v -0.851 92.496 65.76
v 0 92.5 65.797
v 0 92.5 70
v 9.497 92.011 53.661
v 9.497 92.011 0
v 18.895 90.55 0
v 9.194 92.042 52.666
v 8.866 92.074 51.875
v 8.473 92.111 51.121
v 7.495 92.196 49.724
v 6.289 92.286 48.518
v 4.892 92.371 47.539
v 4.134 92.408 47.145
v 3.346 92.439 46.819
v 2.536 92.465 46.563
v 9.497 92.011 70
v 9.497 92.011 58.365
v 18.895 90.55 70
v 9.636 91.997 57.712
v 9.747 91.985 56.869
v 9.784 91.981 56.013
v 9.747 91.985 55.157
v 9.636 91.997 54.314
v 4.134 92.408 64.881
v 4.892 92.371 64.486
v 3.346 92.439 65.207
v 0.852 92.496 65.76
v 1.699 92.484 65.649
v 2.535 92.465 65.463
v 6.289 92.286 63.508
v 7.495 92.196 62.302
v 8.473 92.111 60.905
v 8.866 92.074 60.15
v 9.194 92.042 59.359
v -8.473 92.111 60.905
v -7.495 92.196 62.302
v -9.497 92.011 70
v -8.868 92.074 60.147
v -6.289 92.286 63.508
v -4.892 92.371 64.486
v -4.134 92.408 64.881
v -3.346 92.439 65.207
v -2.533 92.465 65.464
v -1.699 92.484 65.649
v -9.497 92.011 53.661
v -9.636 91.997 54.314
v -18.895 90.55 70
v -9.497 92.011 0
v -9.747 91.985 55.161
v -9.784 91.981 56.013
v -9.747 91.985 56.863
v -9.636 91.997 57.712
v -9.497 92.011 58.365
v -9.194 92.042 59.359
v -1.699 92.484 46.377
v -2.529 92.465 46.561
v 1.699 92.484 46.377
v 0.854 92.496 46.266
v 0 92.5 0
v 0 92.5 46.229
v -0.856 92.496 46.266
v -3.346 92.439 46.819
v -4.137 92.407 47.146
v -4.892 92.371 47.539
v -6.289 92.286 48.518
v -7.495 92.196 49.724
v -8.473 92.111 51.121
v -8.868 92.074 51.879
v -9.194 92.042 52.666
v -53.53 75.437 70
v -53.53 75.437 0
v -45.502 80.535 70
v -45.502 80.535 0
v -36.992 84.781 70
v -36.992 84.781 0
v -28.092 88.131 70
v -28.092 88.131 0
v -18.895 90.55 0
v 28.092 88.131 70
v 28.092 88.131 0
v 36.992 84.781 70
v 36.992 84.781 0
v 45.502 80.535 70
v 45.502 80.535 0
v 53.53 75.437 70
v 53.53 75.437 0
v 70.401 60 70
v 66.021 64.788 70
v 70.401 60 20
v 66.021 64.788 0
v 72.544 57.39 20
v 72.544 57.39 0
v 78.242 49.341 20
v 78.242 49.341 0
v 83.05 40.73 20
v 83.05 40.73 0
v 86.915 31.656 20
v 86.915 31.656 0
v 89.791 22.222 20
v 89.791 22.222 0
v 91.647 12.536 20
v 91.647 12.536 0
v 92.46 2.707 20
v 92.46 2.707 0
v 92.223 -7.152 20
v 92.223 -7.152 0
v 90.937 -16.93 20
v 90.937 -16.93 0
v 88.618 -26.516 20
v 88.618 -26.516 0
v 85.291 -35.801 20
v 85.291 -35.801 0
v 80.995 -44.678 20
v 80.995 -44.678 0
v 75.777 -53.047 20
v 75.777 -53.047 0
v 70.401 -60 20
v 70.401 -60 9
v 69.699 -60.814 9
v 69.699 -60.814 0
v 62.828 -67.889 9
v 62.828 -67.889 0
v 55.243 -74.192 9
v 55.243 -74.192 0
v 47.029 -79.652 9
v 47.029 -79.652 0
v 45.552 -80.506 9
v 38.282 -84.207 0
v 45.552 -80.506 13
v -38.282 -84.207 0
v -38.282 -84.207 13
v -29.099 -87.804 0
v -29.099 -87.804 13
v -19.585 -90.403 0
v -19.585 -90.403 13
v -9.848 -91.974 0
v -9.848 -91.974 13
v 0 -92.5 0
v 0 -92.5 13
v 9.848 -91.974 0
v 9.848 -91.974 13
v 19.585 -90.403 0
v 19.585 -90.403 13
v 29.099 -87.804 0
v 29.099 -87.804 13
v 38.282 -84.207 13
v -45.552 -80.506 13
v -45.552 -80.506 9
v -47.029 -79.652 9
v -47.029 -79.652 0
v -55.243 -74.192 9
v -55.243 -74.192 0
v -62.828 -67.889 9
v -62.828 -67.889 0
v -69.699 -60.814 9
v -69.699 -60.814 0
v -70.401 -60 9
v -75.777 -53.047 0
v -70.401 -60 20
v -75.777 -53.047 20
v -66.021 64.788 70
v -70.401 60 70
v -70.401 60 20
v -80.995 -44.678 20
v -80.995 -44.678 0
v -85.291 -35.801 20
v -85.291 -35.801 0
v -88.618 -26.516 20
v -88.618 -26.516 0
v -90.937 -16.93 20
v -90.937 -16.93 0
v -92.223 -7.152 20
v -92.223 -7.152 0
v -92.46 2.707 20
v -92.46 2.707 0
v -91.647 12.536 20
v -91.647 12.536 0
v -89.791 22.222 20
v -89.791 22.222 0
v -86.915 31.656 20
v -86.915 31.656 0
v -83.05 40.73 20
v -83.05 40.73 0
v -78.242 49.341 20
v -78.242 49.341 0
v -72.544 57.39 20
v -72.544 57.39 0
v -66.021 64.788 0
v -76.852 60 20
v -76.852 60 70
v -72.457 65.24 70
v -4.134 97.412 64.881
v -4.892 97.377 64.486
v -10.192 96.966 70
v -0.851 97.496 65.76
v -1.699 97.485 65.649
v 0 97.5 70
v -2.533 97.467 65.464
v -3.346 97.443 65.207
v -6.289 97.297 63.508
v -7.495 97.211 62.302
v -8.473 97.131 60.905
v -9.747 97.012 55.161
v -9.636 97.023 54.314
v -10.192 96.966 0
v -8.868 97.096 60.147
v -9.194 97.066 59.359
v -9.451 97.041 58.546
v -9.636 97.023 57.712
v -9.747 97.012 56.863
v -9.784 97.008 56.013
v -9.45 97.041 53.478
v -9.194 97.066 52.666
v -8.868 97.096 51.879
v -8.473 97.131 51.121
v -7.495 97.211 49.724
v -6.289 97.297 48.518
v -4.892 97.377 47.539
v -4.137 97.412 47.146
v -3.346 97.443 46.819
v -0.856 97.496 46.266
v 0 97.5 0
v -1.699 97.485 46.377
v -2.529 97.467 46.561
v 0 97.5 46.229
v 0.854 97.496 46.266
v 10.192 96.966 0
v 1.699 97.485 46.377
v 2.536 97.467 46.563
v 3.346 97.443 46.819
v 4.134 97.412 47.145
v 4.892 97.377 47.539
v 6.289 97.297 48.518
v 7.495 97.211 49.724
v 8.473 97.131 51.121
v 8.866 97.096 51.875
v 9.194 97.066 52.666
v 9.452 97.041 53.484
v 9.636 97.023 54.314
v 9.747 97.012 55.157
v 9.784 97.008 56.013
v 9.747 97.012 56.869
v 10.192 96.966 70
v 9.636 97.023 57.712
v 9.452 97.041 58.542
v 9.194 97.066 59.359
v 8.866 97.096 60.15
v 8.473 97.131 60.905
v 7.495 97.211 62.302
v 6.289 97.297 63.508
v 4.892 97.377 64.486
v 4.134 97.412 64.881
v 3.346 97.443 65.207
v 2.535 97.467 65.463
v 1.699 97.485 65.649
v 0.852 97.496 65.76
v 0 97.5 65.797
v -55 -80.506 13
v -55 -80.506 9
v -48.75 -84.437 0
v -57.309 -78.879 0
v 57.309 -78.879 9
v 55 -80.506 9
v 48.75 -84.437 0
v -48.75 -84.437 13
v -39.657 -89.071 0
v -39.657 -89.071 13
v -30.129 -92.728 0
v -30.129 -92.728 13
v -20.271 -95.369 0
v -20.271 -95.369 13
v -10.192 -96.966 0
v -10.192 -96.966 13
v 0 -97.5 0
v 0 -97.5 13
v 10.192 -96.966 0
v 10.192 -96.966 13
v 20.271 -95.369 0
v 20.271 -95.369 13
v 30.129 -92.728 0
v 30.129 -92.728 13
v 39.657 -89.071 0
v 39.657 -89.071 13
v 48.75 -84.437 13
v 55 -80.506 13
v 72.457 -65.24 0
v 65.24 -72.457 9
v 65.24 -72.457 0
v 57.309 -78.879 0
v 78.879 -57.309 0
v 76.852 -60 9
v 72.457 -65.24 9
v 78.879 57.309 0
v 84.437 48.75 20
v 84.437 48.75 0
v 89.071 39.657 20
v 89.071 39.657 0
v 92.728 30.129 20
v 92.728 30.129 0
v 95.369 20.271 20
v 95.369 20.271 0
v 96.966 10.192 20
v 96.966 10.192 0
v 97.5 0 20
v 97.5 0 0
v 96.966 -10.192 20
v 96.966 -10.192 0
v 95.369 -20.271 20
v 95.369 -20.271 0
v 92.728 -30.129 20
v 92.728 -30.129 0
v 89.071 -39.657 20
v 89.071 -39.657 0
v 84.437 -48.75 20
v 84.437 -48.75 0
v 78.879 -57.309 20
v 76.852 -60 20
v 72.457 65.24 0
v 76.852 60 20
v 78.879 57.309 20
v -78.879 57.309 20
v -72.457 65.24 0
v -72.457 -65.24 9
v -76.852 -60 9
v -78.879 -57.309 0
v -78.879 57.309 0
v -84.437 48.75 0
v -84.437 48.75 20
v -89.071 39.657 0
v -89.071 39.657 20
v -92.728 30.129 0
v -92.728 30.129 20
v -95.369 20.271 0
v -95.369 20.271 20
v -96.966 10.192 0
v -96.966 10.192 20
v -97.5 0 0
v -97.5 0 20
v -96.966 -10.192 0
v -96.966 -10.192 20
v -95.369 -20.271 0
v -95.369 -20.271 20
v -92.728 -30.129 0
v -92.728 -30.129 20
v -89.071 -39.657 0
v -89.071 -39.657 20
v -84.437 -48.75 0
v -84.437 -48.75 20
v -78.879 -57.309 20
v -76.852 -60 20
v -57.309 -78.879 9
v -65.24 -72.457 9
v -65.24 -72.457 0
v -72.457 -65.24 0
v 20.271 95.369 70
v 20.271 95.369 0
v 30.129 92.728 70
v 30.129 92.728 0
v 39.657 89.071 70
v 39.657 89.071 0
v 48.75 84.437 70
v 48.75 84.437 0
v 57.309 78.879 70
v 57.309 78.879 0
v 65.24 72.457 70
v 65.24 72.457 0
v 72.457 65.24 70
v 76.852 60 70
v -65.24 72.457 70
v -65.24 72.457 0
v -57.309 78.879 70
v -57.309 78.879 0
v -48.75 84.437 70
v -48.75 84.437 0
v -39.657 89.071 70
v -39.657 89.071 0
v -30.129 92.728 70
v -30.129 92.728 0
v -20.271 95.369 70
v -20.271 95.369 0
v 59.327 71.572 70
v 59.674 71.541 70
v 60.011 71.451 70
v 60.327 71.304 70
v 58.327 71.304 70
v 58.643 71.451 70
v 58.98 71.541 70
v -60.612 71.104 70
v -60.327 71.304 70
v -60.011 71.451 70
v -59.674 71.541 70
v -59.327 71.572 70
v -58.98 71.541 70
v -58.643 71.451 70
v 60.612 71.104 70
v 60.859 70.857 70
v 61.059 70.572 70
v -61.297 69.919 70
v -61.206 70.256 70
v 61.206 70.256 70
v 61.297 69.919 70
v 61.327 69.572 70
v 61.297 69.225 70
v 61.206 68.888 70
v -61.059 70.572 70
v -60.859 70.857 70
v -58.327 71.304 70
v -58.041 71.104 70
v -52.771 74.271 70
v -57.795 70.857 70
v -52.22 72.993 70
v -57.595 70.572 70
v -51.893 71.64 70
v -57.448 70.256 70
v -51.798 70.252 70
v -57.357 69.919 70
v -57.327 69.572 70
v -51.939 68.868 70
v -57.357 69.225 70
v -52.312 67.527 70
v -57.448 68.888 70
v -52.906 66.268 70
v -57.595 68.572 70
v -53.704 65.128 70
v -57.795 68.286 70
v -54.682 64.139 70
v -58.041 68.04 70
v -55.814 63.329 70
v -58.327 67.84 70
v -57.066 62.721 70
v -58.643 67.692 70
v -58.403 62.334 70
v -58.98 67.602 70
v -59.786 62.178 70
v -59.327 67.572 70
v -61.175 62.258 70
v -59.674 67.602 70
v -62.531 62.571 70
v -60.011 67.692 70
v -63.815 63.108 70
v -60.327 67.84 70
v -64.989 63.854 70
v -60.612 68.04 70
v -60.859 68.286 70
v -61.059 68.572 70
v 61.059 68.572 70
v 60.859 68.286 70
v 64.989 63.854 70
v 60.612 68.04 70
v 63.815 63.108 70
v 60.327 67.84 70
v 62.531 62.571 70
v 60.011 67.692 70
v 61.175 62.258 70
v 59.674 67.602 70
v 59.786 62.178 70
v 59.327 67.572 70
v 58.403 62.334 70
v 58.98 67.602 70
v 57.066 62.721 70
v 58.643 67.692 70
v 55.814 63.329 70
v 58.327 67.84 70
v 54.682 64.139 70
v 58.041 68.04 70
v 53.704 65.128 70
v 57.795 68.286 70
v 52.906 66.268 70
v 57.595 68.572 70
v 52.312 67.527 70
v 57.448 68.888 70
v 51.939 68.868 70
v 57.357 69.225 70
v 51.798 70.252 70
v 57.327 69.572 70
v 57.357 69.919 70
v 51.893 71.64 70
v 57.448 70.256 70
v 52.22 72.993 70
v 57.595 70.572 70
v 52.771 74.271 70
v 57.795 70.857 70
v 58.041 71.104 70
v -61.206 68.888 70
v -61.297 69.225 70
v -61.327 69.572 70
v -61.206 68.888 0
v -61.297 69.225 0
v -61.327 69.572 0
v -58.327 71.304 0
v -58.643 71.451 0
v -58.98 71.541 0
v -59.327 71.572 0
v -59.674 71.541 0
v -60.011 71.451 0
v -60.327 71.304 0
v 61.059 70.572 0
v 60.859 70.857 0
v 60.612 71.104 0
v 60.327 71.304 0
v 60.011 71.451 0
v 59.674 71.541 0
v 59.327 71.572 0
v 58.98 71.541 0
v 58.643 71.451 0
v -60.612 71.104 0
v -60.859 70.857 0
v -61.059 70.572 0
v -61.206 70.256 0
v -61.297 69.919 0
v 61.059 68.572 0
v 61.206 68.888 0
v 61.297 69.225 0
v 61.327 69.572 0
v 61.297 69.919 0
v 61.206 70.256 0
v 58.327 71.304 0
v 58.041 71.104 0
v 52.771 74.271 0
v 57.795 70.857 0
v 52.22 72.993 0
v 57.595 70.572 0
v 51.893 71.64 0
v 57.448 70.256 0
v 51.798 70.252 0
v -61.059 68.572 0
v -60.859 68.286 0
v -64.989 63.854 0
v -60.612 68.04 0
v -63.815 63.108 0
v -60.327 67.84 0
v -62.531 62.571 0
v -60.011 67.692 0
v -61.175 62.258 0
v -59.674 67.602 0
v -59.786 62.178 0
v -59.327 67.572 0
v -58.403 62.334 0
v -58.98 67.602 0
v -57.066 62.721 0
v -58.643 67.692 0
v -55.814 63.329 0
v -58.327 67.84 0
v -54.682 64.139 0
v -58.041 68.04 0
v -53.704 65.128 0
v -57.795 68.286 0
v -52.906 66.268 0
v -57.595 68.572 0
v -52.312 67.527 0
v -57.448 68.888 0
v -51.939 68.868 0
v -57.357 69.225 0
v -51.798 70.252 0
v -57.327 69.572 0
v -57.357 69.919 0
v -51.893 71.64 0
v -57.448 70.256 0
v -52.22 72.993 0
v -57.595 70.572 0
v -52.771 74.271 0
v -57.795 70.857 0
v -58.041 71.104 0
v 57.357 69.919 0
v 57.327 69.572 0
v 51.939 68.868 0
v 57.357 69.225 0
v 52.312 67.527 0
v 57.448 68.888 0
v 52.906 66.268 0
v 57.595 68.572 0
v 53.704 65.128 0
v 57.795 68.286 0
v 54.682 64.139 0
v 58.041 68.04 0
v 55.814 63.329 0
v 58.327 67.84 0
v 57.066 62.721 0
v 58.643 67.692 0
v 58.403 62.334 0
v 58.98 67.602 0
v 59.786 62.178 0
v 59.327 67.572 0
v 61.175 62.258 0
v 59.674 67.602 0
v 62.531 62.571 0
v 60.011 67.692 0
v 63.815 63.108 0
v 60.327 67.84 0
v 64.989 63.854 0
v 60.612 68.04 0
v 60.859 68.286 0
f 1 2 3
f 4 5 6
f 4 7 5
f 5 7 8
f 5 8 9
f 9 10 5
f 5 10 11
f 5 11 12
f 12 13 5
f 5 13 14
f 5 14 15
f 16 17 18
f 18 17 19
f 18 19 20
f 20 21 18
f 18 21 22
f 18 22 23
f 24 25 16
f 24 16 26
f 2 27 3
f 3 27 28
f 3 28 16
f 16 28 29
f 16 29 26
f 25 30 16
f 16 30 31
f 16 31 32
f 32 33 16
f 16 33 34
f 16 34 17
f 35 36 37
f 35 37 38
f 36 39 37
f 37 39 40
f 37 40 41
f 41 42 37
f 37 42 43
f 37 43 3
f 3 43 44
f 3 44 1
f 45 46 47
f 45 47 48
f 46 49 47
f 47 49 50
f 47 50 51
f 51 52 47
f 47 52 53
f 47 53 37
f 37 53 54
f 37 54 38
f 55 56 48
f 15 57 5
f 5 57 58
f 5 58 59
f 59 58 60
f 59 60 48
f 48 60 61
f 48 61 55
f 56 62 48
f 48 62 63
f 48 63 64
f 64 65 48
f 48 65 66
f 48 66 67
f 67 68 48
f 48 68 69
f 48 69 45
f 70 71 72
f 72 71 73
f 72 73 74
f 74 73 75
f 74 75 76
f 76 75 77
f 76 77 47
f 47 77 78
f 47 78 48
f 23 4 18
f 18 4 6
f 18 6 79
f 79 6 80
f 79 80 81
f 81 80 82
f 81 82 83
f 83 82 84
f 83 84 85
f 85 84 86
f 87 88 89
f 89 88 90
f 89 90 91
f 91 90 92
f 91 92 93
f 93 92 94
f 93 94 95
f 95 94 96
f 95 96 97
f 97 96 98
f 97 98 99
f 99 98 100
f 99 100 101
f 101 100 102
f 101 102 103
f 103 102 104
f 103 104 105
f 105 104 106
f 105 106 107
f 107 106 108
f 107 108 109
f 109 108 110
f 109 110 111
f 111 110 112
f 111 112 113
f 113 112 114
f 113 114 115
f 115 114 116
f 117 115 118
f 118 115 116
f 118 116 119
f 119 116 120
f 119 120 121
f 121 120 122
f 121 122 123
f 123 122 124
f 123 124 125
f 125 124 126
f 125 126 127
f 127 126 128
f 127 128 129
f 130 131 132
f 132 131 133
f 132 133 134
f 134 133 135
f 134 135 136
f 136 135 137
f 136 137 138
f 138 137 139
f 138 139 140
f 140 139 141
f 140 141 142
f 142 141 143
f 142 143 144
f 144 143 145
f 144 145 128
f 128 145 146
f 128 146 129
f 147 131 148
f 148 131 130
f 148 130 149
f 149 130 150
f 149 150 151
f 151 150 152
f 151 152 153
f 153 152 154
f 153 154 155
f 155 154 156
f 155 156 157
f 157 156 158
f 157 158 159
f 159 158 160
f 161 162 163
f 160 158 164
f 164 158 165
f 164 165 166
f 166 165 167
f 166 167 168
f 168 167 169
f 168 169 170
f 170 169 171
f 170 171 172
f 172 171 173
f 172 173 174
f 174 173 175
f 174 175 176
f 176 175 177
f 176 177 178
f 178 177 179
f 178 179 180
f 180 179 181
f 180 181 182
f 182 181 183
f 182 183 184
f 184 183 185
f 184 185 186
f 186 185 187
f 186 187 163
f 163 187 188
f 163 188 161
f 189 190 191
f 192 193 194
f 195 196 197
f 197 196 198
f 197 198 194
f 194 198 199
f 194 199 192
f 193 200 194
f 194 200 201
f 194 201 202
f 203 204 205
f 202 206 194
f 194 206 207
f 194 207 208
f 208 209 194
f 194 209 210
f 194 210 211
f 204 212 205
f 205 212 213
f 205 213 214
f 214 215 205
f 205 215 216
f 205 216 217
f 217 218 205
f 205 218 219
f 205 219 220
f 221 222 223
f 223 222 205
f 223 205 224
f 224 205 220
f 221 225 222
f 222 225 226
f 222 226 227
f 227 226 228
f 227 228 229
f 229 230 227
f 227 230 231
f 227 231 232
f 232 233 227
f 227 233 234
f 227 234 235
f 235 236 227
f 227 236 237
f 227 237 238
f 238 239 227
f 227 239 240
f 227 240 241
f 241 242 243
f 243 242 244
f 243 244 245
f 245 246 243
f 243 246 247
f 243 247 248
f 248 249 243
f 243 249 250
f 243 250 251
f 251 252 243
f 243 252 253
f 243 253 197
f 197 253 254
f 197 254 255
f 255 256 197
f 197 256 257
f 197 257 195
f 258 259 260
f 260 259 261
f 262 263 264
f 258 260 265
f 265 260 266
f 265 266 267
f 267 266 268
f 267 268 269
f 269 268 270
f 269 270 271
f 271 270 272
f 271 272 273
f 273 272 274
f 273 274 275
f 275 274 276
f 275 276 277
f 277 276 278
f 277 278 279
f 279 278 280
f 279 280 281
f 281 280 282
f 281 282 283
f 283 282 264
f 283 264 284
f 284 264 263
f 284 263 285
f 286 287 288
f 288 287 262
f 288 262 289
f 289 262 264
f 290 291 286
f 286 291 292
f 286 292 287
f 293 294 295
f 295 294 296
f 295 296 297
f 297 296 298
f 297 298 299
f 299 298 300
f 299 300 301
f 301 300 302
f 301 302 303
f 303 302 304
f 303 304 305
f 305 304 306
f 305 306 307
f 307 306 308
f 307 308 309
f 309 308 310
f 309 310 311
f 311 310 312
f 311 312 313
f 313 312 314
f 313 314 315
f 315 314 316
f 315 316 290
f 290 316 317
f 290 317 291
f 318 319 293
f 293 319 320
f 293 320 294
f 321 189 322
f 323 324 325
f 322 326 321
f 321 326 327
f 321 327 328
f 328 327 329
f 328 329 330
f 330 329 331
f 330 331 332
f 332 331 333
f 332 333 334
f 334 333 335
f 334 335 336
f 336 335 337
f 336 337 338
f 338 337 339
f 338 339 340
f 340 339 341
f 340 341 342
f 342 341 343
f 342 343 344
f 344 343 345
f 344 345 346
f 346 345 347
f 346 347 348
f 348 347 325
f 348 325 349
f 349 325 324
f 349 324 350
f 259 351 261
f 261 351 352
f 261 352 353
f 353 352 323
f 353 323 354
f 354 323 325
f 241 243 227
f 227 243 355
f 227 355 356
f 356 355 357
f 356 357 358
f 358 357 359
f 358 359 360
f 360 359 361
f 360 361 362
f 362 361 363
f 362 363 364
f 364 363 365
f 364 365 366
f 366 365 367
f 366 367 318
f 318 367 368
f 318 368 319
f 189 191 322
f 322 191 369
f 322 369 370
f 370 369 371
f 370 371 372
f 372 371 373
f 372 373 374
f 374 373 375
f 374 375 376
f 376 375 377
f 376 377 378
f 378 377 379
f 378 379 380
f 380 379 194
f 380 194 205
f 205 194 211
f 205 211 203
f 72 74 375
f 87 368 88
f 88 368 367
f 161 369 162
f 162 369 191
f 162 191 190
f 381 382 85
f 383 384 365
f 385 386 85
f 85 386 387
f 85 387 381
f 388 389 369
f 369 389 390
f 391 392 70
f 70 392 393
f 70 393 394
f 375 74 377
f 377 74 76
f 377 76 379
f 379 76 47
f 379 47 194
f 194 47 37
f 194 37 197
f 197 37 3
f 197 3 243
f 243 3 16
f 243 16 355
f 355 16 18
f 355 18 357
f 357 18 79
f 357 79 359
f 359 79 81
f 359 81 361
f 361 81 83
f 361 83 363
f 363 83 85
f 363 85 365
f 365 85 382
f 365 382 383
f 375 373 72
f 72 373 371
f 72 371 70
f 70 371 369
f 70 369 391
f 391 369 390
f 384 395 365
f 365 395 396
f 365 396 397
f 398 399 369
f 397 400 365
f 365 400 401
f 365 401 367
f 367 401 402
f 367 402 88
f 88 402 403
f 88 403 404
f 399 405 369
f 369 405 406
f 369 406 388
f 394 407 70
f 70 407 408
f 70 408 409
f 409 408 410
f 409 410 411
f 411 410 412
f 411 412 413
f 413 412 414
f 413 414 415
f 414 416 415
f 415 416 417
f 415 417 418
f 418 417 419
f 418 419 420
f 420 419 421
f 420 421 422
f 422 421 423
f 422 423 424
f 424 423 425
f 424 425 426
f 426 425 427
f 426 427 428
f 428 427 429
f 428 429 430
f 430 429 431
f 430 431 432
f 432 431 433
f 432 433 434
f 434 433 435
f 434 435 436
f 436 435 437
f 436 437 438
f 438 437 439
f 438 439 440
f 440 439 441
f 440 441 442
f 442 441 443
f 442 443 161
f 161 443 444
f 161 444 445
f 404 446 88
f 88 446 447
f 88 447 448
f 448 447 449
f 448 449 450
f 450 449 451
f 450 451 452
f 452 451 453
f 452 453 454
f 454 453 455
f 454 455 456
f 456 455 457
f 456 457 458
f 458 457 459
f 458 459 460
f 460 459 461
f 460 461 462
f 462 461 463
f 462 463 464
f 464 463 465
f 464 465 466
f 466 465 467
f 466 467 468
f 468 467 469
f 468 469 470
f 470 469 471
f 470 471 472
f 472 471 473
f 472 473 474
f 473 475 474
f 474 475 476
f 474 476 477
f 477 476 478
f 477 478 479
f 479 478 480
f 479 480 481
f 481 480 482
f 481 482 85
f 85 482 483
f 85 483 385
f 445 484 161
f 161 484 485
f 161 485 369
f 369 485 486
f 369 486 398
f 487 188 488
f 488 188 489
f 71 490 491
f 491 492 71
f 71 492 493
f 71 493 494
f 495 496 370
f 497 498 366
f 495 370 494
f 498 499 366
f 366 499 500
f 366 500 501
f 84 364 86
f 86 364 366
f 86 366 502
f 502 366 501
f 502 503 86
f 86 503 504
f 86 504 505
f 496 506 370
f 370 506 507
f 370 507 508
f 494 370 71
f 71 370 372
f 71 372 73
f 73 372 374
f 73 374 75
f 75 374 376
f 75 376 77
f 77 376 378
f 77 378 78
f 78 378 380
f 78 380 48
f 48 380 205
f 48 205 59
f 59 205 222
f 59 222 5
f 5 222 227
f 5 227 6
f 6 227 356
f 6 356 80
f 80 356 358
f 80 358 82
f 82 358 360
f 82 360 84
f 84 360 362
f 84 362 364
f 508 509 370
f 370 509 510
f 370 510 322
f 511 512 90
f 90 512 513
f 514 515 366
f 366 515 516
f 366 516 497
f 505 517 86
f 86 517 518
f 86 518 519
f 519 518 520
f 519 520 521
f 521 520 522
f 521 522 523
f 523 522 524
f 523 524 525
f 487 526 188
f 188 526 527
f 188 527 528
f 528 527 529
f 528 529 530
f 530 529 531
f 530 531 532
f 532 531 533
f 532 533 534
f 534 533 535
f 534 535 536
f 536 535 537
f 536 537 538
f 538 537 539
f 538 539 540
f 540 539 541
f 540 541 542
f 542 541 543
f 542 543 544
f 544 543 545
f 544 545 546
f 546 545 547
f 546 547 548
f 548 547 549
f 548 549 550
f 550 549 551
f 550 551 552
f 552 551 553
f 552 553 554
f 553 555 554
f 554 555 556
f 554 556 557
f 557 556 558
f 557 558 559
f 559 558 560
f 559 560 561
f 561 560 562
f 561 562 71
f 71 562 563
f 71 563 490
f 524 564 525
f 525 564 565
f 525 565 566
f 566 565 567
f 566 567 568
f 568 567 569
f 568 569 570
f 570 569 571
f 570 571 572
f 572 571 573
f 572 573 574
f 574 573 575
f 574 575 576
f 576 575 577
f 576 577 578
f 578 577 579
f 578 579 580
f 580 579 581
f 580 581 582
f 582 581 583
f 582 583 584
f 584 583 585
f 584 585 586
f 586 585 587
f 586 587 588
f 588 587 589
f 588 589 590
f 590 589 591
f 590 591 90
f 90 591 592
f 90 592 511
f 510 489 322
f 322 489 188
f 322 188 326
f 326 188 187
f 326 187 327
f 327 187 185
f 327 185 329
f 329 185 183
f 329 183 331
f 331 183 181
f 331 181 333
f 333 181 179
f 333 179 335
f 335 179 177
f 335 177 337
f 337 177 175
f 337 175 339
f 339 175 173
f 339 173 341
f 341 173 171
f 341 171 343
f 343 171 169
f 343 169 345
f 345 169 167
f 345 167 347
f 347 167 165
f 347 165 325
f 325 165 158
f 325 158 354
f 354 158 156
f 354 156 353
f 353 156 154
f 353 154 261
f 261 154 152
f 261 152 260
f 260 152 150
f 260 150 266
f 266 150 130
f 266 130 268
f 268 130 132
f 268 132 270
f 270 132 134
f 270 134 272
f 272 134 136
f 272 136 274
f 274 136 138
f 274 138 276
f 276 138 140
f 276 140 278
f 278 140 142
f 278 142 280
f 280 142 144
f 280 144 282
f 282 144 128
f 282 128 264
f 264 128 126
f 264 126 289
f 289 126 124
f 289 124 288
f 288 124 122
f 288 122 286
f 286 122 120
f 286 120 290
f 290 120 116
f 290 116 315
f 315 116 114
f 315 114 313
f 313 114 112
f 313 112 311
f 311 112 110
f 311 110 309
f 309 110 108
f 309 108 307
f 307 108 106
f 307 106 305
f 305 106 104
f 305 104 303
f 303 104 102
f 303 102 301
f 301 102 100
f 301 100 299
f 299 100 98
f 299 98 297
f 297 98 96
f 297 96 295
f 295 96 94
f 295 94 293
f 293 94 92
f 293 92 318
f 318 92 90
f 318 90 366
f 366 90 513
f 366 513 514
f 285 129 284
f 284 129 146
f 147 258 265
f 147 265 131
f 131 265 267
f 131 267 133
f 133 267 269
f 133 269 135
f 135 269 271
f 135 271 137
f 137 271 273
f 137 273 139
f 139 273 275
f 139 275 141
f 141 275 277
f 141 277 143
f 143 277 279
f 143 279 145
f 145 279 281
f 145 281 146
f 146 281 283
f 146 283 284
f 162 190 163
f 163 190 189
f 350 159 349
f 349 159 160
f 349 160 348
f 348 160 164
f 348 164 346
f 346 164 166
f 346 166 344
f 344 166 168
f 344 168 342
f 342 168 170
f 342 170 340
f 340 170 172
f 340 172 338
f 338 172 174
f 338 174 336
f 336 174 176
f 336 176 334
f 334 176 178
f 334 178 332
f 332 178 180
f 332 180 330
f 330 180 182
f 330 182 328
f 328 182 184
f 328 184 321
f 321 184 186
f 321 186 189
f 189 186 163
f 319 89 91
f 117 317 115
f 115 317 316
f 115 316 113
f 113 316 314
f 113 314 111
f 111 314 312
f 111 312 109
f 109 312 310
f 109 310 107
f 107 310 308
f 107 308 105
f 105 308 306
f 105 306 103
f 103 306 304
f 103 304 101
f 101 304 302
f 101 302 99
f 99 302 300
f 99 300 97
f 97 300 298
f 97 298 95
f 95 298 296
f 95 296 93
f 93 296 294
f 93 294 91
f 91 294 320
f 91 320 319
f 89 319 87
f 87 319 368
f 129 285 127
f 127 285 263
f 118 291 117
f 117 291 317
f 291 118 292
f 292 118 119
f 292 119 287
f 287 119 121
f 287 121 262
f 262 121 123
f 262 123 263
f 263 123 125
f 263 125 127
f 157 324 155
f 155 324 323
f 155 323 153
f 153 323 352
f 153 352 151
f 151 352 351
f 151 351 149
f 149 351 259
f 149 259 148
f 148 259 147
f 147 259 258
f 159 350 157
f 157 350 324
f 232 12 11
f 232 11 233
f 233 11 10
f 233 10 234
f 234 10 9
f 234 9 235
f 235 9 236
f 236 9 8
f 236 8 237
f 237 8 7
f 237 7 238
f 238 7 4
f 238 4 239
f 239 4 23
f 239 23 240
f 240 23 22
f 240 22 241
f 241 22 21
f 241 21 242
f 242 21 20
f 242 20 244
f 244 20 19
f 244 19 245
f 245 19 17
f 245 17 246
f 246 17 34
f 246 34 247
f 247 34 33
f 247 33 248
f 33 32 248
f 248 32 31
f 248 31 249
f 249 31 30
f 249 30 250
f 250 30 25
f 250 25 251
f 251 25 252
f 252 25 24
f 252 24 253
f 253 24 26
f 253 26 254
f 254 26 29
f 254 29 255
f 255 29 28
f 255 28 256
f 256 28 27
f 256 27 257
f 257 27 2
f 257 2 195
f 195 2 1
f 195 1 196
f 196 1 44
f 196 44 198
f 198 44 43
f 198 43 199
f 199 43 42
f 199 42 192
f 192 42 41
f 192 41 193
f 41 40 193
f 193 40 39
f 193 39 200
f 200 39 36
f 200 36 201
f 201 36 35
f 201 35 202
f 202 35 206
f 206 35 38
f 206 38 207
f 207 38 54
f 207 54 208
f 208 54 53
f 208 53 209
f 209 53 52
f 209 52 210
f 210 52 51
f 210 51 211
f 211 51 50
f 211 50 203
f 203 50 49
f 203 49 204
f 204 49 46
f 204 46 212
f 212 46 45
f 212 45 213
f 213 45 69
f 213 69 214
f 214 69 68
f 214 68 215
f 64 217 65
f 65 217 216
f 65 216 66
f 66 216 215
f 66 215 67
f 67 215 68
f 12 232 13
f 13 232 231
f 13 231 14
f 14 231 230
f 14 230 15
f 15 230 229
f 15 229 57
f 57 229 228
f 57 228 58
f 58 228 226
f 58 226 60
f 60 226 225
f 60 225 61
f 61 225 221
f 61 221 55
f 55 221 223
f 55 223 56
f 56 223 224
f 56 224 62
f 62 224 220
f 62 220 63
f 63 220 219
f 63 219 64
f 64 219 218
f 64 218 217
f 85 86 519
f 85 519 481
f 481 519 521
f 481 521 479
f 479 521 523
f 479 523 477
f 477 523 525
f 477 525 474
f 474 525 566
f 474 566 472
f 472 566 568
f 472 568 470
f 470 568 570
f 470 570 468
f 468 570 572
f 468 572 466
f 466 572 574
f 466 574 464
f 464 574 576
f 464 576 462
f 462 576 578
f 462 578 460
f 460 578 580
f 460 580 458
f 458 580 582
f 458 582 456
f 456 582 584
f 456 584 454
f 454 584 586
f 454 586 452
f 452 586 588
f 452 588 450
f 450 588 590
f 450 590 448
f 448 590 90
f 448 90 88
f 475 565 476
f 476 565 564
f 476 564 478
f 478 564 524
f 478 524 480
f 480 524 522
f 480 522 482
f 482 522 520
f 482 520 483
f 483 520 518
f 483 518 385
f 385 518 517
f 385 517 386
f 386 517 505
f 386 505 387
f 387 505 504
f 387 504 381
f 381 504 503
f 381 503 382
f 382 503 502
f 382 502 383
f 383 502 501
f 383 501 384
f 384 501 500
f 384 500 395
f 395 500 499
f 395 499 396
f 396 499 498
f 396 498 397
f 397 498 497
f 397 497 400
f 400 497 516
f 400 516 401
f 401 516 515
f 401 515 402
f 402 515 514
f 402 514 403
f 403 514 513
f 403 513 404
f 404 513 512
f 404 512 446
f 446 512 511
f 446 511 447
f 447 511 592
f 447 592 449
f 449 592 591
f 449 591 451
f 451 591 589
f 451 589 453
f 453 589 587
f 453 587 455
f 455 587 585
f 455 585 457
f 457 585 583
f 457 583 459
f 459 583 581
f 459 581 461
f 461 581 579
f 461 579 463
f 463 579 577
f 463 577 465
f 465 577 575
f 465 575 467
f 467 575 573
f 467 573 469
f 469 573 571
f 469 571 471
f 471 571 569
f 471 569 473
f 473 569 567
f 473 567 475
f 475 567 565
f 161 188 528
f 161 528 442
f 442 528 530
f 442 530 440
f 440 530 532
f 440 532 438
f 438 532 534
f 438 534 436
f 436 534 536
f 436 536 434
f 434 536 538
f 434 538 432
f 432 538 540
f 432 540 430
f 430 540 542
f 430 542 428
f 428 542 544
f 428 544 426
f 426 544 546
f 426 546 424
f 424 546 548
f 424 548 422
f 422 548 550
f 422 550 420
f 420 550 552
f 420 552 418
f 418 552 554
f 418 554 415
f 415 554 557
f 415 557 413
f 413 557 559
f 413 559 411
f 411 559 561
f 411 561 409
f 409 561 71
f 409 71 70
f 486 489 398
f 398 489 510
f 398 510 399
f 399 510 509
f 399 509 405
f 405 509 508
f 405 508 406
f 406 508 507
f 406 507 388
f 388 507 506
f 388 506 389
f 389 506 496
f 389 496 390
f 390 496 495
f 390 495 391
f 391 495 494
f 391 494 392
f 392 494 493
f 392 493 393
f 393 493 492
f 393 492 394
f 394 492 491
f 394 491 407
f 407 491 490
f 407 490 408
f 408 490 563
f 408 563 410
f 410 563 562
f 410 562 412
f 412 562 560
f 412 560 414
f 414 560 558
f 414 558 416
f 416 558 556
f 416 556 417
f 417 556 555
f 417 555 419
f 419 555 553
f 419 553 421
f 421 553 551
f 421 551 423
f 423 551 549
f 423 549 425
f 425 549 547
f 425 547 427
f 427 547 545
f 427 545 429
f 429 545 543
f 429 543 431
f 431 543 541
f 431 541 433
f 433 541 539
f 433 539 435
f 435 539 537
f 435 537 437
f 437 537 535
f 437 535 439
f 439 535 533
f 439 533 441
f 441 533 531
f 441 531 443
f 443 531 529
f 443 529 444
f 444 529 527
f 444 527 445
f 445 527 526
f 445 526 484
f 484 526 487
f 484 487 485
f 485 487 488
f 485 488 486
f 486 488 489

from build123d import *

# Parameters (mm, degrees)
SKETCH2_R               = 97.5
SKETCH2_R_2             = 92.5
BOSS_EXTRUDE1_DEPTH     = 70
SKETCH3_W               = 110
SKETCH3_H               = 114
CUT_EXTRUDE1_DEPTH      = 98.5
SKETCH4_W               = 100
SKETCH4_H               = 120
CUT_EXTRUDE2_DEPTH      = 98.5
CUT_EXTRUDE2_DEPTH_BACK = 98.5
SKETCH5_W               = 61
SKETCH5_H               = 20.506210941
CUT_EXTRUDE3_DEPTH      = 98.5
CUT_EXTRUDE3_DEPTH_BACK = 98.5
SKETCH6_R               = 9.784293737
CUT_EXTRUDE4_DEPTH      = 98.5
BOSS_EXTRUDE2_DEPTH     = 70
SKETCH9_R               = 2
CUT_EXTRUDE5_DEPTH      = 71.0000001


with BuildPart() as part:
    # Sketch2 → Boss-Extrude1 (new body)
    with BuildSketch(Plane.XY):
        Circle(SKETCH2_R)
        Circle(SKETCH2_R_2, mode=Mode.SUBTRACT)
    extrude(amount=BOSS_EXTRUDE1_DEPTH)

    # Sketch3 → Cut-Extrude1 (cut, through all)
    with BuildSketch(Plane(origin=(0, 0, 0), x_dir=(1, 0, 0), z_dir=(0, 1, 0))):
        with Locations((0, -70)):
            Rectangle(SKETCH3_W, SKETCH3_H)
    extrude(amount=-CUT_EXTRUDE1_DEPTH, mode=Mode.SUBTRACT)

    # Sketch4 → Cut-Extrude2 (cut, two sides)
    with BuildSketch(Plane(origin=(0, 0, 0), x_dir=(0, 0, -1), z_dir=(1, 0, 0))) as cut_extrude2_sk:
        with Locations((-70, 0)):
            Rectangle(SKETCH4_W, SKETCH4_H)
    extrude(amount=CUT_EXTRUDE2_DEPTH, mode=Mode.SUBTRACT)
    extrude(cut_extrude2_sk.sketch, amount=-CUT_EXTRUDE2_DEPTH_BACK, mode=Mode.SUBTRACT)

    # Sketch5 → Cut-Extrude3 (cut, two sides)
    with BuildSketch(Plane(origin=(0, 0, 0), x_dir=(0, 0, -1), z_dir=(1, 0, 0))) as cut_extrude3_sk:
        with Locations((-39.5, -70.253105471)):
            Rectangle(SKETCH5_W, SKETCH5_H)
    extrude(amount=CUT_EXTRUDE3_DEPTH, mode=Mode.SUBTRACT)
    extrude(cut_extrude3_sk.sketch, amount=-CUT_EXTRUDE3_DEPTH_BACK, mode=Mode.SUBTRACT)

    # Sketch6 → Cut-Extrude4 (cut, through all)
    with BuildSketch(Plane(origin=(0, 0, 0), x_dir=(1, 0, 0), z_dir=(0, 1, 0))):
        with Locations((0, -56.012862066)):
            Circle(SKETCH6_R)
    extrude(amount=CUT_EXTRUDE4_DEPTH, mode=Mode.SUBTRACT)

    # Sketch8 → Boss-Extrude2 (add)
    with BuildSketch(Plane.XY):
        with BuildLine():
            ThreePointArc((66.0209996, 64.787943414), (54.682390857, 64.138601978), (53.530180965, 75.437190602))
            ThreePointArc((53.530180965, 75.437190602), (60.012272162, 70.390178221), (66.0209996, 64.787943414))
        make_face()
    boss_extrude2 = extrude(amount=BOSS_EXTRUDE2_DEPTH)

    # Sketch9 → Cut-Extrude5 (cut, through all)
    with BuildSketch(Plane(origin=(0, 0, 0), x_dir=(-1, 0, 0), z_dir=(0, 0, -1))):
        with Locations((-59.32689754, 69.571871503)):
            Circle(SKETCH9_R)
    cut_extrude5 = extrude(amount=-CUT_EXTRUDE5_DEPTH, mode=Mode.SUBTRACT)

    # Mirror1: Boss-Extrude2, Cut-Extrude5 across plane
    add(boss_extrude2.mirror(Plane(origin=(0, 0, 0), x_dir=(0, 0, 1), z_dir=(1, 0, 0))))
    add(cut_extrude5.mirror(Plane(origin=(0, 0, 0), x_dir=(0, 0, 1), z_dir=(1, 0, 0))), mode=Mode.SUBTRACT)


solid = part.part
